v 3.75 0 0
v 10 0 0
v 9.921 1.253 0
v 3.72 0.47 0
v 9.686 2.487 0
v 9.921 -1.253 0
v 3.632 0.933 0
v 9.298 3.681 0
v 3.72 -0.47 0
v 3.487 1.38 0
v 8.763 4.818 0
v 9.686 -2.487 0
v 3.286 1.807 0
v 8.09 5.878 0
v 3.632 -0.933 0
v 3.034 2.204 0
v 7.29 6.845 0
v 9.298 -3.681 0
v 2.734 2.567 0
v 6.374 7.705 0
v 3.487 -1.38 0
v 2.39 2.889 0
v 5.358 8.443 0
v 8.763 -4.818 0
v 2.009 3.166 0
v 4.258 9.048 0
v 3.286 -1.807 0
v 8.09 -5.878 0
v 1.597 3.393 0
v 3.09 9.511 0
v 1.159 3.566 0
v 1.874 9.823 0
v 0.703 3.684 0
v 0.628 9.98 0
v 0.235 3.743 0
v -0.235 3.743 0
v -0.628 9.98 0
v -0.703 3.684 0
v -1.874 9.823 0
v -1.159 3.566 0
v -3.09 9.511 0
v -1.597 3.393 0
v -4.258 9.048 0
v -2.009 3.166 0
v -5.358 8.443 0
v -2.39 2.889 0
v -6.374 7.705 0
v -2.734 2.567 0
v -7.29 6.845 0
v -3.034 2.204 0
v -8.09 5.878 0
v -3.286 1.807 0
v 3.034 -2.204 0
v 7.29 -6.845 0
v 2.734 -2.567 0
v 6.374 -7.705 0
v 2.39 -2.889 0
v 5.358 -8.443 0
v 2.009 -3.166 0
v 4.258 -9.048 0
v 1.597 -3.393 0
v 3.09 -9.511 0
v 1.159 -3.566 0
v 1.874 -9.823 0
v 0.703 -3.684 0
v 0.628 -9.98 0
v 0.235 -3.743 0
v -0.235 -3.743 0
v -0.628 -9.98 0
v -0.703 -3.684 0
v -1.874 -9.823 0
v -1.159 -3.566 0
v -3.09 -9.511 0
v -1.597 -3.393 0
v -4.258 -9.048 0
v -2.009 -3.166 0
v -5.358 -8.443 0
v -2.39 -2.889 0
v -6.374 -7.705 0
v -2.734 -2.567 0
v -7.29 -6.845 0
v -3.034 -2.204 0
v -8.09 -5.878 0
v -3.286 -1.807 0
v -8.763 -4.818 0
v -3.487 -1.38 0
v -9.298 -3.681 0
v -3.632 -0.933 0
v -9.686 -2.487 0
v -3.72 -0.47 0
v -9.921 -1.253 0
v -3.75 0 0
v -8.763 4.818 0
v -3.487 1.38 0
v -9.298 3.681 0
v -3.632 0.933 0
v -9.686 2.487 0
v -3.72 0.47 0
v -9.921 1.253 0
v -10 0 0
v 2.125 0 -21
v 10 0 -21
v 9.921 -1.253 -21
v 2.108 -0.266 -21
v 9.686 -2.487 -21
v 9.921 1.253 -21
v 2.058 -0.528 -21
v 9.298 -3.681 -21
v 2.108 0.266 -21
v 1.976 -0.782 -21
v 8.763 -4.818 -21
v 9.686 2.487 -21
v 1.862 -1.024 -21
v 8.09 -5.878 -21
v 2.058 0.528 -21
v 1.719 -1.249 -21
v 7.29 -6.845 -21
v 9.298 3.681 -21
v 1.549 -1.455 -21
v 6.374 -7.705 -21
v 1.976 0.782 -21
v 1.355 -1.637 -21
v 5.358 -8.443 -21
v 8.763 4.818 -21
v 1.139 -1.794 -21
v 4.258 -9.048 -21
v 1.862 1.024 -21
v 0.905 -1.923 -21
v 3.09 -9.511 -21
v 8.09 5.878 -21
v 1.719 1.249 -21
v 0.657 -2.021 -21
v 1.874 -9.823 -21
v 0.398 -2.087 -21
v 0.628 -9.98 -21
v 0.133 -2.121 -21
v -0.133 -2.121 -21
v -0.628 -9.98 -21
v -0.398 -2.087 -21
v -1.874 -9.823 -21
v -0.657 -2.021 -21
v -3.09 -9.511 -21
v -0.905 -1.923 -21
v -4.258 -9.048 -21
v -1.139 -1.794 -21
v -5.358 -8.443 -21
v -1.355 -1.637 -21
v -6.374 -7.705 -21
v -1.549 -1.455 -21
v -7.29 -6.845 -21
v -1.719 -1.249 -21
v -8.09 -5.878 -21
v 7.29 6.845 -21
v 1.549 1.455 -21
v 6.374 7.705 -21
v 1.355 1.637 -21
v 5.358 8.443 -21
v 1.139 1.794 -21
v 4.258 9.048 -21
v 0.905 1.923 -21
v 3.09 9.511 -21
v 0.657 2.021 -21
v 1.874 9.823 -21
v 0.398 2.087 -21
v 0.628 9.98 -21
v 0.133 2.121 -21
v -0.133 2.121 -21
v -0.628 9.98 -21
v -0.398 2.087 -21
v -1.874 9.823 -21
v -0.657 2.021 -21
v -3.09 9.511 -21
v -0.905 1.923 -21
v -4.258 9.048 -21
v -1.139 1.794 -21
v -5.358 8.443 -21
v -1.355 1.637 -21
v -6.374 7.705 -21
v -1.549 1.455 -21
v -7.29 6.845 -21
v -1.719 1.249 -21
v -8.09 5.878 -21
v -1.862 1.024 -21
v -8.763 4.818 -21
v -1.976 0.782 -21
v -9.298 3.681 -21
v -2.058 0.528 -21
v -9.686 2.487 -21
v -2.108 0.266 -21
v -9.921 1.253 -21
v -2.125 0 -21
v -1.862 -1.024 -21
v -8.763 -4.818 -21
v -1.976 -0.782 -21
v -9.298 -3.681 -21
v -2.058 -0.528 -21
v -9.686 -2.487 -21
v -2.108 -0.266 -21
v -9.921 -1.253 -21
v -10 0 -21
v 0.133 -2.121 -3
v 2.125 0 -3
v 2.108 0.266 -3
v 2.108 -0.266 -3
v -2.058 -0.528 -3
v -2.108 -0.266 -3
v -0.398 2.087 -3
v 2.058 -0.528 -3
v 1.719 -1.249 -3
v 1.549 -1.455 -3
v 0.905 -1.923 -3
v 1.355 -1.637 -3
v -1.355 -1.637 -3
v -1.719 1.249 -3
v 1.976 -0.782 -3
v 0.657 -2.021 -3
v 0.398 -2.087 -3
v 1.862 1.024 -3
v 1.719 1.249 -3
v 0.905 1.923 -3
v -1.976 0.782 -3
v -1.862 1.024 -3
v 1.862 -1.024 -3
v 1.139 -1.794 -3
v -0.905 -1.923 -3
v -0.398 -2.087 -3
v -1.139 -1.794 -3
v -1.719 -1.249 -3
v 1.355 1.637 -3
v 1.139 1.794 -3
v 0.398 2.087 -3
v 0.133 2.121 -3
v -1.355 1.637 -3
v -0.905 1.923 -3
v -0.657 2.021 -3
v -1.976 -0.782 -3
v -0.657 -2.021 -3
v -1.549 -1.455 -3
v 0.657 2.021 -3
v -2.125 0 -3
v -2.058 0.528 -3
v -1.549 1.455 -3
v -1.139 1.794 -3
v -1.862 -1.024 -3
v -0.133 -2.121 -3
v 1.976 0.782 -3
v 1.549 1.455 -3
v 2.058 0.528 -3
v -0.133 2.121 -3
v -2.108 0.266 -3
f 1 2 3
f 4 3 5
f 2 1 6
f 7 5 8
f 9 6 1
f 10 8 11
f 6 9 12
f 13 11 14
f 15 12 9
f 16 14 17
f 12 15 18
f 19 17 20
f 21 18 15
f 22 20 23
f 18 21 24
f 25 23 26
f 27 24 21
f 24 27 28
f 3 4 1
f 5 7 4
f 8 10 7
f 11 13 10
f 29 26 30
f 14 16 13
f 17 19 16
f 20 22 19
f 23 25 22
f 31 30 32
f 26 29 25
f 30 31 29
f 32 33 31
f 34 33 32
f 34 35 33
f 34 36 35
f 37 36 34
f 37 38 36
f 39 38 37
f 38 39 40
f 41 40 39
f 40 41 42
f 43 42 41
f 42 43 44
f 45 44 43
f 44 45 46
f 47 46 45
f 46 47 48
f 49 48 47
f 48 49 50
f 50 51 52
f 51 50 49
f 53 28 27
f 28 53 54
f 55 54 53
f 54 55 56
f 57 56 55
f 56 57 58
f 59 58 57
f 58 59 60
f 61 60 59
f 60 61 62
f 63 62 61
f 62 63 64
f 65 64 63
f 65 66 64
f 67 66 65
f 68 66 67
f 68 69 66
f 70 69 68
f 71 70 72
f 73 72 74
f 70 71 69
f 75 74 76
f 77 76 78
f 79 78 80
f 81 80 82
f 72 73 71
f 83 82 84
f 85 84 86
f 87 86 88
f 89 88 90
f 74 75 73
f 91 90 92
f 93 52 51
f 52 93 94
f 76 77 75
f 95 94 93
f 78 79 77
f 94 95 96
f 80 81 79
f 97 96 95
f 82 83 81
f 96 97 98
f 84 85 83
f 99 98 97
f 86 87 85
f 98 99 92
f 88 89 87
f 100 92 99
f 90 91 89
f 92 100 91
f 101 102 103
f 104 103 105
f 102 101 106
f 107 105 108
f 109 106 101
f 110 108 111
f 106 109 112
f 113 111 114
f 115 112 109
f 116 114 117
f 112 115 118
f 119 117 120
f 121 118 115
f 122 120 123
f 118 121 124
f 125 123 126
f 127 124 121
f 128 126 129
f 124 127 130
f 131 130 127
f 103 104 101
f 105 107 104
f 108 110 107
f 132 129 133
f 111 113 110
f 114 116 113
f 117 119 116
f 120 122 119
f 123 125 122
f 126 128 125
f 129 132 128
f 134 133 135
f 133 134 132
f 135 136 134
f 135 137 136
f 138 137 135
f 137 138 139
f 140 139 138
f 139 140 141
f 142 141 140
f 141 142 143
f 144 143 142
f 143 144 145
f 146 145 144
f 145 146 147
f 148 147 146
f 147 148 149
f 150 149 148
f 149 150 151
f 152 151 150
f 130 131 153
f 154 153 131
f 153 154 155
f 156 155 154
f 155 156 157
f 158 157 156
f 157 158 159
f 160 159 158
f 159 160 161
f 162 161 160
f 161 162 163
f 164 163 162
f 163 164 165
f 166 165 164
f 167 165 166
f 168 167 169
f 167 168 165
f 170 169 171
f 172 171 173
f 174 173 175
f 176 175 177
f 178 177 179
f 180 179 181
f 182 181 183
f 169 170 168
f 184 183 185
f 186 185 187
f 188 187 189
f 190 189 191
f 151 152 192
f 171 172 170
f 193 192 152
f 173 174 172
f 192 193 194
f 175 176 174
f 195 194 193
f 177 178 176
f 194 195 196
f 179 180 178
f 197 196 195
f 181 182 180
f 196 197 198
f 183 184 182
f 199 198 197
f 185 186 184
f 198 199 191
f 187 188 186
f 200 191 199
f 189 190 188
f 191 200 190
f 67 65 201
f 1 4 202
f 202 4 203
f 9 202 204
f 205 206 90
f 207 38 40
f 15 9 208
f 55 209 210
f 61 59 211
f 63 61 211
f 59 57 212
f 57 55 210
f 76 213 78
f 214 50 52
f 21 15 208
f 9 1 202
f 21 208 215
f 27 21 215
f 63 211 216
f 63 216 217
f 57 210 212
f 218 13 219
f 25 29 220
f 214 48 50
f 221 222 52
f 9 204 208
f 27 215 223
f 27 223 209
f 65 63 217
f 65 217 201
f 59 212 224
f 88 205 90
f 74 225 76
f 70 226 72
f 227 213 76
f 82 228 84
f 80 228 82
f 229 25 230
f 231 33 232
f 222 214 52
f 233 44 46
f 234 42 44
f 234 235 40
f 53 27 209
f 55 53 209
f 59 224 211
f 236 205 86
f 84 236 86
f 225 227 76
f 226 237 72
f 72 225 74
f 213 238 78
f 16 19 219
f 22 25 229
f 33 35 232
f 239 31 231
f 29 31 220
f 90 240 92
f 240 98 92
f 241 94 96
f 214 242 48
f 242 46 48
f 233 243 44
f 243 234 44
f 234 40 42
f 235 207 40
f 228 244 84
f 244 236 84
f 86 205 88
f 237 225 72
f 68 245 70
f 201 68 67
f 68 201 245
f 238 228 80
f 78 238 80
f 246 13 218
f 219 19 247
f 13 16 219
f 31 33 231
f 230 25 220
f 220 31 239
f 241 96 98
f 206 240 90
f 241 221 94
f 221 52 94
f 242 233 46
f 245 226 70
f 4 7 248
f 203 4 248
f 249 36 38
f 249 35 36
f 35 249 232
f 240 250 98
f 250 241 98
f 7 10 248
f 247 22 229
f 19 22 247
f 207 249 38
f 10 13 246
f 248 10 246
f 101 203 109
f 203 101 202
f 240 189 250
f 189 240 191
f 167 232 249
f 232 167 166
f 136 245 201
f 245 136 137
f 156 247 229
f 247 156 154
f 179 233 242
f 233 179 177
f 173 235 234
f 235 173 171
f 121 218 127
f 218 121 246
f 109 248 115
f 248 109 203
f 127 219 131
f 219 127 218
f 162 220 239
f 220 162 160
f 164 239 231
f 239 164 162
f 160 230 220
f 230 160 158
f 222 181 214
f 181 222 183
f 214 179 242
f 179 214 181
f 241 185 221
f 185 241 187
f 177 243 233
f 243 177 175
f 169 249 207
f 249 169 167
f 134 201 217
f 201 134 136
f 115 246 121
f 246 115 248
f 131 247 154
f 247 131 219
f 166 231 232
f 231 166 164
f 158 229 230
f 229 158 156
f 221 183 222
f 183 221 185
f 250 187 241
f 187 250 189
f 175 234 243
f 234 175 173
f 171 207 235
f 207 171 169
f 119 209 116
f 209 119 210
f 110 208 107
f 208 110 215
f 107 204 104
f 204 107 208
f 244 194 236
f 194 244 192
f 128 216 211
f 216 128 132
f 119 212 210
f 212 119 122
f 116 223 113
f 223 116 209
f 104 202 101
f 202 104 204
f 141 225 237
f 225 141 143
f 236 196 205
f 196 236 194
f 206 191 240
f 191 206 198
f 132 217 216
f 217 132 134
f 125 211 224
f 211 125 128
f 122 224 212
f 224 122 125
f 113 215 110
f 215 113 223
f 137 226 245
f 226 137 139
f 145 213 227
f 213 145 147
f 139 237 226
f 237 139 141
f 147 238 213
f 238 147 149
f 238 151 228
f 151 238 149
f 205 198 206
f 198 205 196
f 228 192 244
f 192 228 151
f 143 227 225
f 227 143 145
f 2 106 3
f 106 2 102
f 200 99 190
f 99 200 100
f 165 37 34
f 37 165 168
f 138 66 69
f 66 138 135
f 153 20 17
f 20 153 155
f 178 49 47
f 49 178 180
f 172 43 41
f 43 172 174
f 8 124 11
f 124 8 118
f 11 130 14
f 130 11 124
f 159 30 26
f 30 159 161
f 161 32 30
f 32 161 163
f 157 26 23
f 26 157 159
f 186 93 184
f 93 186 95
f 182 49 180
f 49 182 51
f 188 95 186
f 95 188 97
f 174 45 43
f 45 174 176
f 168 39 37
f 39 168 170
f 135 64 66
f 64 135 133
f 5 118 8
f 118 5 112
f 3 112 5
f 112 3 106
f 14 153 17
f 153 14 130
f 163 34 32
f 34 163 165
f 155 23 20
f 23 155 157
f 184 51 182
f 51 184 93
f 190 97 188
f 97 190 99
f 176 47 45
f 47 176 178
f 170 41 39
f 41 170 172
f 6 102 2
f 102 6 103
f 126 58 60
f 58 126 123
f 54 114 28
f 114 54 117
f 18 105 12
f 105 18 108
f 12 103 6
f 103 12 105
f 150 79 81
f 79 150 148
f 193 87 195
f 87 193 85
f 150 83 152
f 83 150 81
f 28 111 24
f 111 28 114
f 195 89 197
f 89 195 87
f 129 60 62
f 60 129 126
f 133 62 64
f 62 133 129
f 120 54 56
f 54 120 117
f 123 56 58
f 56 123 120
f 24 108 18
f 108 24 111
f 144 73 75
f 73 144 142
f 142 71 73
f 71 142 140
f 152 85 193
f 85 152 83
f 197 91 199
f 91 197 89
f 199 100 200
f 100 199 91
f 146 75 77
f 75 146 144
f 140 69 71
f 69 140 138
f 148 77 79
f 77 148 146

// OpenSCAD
$fn = 50;


difference() {
	union() {
		translate(v = [0, 0, -21.0000000000]) {
			cylinder(h = 21, r = 10.0000000000);
		}
		cylinder(h = 0, r = 13.0000000000);
	}
	union() {
		translate(v = [0, 0, 0]) {
			rotate(a = [0, 0, 0]) {
				difference() {
					union() {
						#translate(v = [0, 0, -21.0000000000]) {
							cylinder(h = 21, r = 2.0000000000);
						}
						#translate(v = [0, 0, -3]) {
							cylinder(h = 3, r1 = 2.1250000000, r2 = 3.7500000000);
						}
						#translate(v = [0, 0, -21.0000000000]) {
							cylinder(h = 21, r = 2.1250000000);
						}
						#translate(v = [0, 0, -21.0000000000]) {
							cylinder(h = 21, r = 2.0000000000);
						}
					}
					union();
				}
			}
		}
	}
}
